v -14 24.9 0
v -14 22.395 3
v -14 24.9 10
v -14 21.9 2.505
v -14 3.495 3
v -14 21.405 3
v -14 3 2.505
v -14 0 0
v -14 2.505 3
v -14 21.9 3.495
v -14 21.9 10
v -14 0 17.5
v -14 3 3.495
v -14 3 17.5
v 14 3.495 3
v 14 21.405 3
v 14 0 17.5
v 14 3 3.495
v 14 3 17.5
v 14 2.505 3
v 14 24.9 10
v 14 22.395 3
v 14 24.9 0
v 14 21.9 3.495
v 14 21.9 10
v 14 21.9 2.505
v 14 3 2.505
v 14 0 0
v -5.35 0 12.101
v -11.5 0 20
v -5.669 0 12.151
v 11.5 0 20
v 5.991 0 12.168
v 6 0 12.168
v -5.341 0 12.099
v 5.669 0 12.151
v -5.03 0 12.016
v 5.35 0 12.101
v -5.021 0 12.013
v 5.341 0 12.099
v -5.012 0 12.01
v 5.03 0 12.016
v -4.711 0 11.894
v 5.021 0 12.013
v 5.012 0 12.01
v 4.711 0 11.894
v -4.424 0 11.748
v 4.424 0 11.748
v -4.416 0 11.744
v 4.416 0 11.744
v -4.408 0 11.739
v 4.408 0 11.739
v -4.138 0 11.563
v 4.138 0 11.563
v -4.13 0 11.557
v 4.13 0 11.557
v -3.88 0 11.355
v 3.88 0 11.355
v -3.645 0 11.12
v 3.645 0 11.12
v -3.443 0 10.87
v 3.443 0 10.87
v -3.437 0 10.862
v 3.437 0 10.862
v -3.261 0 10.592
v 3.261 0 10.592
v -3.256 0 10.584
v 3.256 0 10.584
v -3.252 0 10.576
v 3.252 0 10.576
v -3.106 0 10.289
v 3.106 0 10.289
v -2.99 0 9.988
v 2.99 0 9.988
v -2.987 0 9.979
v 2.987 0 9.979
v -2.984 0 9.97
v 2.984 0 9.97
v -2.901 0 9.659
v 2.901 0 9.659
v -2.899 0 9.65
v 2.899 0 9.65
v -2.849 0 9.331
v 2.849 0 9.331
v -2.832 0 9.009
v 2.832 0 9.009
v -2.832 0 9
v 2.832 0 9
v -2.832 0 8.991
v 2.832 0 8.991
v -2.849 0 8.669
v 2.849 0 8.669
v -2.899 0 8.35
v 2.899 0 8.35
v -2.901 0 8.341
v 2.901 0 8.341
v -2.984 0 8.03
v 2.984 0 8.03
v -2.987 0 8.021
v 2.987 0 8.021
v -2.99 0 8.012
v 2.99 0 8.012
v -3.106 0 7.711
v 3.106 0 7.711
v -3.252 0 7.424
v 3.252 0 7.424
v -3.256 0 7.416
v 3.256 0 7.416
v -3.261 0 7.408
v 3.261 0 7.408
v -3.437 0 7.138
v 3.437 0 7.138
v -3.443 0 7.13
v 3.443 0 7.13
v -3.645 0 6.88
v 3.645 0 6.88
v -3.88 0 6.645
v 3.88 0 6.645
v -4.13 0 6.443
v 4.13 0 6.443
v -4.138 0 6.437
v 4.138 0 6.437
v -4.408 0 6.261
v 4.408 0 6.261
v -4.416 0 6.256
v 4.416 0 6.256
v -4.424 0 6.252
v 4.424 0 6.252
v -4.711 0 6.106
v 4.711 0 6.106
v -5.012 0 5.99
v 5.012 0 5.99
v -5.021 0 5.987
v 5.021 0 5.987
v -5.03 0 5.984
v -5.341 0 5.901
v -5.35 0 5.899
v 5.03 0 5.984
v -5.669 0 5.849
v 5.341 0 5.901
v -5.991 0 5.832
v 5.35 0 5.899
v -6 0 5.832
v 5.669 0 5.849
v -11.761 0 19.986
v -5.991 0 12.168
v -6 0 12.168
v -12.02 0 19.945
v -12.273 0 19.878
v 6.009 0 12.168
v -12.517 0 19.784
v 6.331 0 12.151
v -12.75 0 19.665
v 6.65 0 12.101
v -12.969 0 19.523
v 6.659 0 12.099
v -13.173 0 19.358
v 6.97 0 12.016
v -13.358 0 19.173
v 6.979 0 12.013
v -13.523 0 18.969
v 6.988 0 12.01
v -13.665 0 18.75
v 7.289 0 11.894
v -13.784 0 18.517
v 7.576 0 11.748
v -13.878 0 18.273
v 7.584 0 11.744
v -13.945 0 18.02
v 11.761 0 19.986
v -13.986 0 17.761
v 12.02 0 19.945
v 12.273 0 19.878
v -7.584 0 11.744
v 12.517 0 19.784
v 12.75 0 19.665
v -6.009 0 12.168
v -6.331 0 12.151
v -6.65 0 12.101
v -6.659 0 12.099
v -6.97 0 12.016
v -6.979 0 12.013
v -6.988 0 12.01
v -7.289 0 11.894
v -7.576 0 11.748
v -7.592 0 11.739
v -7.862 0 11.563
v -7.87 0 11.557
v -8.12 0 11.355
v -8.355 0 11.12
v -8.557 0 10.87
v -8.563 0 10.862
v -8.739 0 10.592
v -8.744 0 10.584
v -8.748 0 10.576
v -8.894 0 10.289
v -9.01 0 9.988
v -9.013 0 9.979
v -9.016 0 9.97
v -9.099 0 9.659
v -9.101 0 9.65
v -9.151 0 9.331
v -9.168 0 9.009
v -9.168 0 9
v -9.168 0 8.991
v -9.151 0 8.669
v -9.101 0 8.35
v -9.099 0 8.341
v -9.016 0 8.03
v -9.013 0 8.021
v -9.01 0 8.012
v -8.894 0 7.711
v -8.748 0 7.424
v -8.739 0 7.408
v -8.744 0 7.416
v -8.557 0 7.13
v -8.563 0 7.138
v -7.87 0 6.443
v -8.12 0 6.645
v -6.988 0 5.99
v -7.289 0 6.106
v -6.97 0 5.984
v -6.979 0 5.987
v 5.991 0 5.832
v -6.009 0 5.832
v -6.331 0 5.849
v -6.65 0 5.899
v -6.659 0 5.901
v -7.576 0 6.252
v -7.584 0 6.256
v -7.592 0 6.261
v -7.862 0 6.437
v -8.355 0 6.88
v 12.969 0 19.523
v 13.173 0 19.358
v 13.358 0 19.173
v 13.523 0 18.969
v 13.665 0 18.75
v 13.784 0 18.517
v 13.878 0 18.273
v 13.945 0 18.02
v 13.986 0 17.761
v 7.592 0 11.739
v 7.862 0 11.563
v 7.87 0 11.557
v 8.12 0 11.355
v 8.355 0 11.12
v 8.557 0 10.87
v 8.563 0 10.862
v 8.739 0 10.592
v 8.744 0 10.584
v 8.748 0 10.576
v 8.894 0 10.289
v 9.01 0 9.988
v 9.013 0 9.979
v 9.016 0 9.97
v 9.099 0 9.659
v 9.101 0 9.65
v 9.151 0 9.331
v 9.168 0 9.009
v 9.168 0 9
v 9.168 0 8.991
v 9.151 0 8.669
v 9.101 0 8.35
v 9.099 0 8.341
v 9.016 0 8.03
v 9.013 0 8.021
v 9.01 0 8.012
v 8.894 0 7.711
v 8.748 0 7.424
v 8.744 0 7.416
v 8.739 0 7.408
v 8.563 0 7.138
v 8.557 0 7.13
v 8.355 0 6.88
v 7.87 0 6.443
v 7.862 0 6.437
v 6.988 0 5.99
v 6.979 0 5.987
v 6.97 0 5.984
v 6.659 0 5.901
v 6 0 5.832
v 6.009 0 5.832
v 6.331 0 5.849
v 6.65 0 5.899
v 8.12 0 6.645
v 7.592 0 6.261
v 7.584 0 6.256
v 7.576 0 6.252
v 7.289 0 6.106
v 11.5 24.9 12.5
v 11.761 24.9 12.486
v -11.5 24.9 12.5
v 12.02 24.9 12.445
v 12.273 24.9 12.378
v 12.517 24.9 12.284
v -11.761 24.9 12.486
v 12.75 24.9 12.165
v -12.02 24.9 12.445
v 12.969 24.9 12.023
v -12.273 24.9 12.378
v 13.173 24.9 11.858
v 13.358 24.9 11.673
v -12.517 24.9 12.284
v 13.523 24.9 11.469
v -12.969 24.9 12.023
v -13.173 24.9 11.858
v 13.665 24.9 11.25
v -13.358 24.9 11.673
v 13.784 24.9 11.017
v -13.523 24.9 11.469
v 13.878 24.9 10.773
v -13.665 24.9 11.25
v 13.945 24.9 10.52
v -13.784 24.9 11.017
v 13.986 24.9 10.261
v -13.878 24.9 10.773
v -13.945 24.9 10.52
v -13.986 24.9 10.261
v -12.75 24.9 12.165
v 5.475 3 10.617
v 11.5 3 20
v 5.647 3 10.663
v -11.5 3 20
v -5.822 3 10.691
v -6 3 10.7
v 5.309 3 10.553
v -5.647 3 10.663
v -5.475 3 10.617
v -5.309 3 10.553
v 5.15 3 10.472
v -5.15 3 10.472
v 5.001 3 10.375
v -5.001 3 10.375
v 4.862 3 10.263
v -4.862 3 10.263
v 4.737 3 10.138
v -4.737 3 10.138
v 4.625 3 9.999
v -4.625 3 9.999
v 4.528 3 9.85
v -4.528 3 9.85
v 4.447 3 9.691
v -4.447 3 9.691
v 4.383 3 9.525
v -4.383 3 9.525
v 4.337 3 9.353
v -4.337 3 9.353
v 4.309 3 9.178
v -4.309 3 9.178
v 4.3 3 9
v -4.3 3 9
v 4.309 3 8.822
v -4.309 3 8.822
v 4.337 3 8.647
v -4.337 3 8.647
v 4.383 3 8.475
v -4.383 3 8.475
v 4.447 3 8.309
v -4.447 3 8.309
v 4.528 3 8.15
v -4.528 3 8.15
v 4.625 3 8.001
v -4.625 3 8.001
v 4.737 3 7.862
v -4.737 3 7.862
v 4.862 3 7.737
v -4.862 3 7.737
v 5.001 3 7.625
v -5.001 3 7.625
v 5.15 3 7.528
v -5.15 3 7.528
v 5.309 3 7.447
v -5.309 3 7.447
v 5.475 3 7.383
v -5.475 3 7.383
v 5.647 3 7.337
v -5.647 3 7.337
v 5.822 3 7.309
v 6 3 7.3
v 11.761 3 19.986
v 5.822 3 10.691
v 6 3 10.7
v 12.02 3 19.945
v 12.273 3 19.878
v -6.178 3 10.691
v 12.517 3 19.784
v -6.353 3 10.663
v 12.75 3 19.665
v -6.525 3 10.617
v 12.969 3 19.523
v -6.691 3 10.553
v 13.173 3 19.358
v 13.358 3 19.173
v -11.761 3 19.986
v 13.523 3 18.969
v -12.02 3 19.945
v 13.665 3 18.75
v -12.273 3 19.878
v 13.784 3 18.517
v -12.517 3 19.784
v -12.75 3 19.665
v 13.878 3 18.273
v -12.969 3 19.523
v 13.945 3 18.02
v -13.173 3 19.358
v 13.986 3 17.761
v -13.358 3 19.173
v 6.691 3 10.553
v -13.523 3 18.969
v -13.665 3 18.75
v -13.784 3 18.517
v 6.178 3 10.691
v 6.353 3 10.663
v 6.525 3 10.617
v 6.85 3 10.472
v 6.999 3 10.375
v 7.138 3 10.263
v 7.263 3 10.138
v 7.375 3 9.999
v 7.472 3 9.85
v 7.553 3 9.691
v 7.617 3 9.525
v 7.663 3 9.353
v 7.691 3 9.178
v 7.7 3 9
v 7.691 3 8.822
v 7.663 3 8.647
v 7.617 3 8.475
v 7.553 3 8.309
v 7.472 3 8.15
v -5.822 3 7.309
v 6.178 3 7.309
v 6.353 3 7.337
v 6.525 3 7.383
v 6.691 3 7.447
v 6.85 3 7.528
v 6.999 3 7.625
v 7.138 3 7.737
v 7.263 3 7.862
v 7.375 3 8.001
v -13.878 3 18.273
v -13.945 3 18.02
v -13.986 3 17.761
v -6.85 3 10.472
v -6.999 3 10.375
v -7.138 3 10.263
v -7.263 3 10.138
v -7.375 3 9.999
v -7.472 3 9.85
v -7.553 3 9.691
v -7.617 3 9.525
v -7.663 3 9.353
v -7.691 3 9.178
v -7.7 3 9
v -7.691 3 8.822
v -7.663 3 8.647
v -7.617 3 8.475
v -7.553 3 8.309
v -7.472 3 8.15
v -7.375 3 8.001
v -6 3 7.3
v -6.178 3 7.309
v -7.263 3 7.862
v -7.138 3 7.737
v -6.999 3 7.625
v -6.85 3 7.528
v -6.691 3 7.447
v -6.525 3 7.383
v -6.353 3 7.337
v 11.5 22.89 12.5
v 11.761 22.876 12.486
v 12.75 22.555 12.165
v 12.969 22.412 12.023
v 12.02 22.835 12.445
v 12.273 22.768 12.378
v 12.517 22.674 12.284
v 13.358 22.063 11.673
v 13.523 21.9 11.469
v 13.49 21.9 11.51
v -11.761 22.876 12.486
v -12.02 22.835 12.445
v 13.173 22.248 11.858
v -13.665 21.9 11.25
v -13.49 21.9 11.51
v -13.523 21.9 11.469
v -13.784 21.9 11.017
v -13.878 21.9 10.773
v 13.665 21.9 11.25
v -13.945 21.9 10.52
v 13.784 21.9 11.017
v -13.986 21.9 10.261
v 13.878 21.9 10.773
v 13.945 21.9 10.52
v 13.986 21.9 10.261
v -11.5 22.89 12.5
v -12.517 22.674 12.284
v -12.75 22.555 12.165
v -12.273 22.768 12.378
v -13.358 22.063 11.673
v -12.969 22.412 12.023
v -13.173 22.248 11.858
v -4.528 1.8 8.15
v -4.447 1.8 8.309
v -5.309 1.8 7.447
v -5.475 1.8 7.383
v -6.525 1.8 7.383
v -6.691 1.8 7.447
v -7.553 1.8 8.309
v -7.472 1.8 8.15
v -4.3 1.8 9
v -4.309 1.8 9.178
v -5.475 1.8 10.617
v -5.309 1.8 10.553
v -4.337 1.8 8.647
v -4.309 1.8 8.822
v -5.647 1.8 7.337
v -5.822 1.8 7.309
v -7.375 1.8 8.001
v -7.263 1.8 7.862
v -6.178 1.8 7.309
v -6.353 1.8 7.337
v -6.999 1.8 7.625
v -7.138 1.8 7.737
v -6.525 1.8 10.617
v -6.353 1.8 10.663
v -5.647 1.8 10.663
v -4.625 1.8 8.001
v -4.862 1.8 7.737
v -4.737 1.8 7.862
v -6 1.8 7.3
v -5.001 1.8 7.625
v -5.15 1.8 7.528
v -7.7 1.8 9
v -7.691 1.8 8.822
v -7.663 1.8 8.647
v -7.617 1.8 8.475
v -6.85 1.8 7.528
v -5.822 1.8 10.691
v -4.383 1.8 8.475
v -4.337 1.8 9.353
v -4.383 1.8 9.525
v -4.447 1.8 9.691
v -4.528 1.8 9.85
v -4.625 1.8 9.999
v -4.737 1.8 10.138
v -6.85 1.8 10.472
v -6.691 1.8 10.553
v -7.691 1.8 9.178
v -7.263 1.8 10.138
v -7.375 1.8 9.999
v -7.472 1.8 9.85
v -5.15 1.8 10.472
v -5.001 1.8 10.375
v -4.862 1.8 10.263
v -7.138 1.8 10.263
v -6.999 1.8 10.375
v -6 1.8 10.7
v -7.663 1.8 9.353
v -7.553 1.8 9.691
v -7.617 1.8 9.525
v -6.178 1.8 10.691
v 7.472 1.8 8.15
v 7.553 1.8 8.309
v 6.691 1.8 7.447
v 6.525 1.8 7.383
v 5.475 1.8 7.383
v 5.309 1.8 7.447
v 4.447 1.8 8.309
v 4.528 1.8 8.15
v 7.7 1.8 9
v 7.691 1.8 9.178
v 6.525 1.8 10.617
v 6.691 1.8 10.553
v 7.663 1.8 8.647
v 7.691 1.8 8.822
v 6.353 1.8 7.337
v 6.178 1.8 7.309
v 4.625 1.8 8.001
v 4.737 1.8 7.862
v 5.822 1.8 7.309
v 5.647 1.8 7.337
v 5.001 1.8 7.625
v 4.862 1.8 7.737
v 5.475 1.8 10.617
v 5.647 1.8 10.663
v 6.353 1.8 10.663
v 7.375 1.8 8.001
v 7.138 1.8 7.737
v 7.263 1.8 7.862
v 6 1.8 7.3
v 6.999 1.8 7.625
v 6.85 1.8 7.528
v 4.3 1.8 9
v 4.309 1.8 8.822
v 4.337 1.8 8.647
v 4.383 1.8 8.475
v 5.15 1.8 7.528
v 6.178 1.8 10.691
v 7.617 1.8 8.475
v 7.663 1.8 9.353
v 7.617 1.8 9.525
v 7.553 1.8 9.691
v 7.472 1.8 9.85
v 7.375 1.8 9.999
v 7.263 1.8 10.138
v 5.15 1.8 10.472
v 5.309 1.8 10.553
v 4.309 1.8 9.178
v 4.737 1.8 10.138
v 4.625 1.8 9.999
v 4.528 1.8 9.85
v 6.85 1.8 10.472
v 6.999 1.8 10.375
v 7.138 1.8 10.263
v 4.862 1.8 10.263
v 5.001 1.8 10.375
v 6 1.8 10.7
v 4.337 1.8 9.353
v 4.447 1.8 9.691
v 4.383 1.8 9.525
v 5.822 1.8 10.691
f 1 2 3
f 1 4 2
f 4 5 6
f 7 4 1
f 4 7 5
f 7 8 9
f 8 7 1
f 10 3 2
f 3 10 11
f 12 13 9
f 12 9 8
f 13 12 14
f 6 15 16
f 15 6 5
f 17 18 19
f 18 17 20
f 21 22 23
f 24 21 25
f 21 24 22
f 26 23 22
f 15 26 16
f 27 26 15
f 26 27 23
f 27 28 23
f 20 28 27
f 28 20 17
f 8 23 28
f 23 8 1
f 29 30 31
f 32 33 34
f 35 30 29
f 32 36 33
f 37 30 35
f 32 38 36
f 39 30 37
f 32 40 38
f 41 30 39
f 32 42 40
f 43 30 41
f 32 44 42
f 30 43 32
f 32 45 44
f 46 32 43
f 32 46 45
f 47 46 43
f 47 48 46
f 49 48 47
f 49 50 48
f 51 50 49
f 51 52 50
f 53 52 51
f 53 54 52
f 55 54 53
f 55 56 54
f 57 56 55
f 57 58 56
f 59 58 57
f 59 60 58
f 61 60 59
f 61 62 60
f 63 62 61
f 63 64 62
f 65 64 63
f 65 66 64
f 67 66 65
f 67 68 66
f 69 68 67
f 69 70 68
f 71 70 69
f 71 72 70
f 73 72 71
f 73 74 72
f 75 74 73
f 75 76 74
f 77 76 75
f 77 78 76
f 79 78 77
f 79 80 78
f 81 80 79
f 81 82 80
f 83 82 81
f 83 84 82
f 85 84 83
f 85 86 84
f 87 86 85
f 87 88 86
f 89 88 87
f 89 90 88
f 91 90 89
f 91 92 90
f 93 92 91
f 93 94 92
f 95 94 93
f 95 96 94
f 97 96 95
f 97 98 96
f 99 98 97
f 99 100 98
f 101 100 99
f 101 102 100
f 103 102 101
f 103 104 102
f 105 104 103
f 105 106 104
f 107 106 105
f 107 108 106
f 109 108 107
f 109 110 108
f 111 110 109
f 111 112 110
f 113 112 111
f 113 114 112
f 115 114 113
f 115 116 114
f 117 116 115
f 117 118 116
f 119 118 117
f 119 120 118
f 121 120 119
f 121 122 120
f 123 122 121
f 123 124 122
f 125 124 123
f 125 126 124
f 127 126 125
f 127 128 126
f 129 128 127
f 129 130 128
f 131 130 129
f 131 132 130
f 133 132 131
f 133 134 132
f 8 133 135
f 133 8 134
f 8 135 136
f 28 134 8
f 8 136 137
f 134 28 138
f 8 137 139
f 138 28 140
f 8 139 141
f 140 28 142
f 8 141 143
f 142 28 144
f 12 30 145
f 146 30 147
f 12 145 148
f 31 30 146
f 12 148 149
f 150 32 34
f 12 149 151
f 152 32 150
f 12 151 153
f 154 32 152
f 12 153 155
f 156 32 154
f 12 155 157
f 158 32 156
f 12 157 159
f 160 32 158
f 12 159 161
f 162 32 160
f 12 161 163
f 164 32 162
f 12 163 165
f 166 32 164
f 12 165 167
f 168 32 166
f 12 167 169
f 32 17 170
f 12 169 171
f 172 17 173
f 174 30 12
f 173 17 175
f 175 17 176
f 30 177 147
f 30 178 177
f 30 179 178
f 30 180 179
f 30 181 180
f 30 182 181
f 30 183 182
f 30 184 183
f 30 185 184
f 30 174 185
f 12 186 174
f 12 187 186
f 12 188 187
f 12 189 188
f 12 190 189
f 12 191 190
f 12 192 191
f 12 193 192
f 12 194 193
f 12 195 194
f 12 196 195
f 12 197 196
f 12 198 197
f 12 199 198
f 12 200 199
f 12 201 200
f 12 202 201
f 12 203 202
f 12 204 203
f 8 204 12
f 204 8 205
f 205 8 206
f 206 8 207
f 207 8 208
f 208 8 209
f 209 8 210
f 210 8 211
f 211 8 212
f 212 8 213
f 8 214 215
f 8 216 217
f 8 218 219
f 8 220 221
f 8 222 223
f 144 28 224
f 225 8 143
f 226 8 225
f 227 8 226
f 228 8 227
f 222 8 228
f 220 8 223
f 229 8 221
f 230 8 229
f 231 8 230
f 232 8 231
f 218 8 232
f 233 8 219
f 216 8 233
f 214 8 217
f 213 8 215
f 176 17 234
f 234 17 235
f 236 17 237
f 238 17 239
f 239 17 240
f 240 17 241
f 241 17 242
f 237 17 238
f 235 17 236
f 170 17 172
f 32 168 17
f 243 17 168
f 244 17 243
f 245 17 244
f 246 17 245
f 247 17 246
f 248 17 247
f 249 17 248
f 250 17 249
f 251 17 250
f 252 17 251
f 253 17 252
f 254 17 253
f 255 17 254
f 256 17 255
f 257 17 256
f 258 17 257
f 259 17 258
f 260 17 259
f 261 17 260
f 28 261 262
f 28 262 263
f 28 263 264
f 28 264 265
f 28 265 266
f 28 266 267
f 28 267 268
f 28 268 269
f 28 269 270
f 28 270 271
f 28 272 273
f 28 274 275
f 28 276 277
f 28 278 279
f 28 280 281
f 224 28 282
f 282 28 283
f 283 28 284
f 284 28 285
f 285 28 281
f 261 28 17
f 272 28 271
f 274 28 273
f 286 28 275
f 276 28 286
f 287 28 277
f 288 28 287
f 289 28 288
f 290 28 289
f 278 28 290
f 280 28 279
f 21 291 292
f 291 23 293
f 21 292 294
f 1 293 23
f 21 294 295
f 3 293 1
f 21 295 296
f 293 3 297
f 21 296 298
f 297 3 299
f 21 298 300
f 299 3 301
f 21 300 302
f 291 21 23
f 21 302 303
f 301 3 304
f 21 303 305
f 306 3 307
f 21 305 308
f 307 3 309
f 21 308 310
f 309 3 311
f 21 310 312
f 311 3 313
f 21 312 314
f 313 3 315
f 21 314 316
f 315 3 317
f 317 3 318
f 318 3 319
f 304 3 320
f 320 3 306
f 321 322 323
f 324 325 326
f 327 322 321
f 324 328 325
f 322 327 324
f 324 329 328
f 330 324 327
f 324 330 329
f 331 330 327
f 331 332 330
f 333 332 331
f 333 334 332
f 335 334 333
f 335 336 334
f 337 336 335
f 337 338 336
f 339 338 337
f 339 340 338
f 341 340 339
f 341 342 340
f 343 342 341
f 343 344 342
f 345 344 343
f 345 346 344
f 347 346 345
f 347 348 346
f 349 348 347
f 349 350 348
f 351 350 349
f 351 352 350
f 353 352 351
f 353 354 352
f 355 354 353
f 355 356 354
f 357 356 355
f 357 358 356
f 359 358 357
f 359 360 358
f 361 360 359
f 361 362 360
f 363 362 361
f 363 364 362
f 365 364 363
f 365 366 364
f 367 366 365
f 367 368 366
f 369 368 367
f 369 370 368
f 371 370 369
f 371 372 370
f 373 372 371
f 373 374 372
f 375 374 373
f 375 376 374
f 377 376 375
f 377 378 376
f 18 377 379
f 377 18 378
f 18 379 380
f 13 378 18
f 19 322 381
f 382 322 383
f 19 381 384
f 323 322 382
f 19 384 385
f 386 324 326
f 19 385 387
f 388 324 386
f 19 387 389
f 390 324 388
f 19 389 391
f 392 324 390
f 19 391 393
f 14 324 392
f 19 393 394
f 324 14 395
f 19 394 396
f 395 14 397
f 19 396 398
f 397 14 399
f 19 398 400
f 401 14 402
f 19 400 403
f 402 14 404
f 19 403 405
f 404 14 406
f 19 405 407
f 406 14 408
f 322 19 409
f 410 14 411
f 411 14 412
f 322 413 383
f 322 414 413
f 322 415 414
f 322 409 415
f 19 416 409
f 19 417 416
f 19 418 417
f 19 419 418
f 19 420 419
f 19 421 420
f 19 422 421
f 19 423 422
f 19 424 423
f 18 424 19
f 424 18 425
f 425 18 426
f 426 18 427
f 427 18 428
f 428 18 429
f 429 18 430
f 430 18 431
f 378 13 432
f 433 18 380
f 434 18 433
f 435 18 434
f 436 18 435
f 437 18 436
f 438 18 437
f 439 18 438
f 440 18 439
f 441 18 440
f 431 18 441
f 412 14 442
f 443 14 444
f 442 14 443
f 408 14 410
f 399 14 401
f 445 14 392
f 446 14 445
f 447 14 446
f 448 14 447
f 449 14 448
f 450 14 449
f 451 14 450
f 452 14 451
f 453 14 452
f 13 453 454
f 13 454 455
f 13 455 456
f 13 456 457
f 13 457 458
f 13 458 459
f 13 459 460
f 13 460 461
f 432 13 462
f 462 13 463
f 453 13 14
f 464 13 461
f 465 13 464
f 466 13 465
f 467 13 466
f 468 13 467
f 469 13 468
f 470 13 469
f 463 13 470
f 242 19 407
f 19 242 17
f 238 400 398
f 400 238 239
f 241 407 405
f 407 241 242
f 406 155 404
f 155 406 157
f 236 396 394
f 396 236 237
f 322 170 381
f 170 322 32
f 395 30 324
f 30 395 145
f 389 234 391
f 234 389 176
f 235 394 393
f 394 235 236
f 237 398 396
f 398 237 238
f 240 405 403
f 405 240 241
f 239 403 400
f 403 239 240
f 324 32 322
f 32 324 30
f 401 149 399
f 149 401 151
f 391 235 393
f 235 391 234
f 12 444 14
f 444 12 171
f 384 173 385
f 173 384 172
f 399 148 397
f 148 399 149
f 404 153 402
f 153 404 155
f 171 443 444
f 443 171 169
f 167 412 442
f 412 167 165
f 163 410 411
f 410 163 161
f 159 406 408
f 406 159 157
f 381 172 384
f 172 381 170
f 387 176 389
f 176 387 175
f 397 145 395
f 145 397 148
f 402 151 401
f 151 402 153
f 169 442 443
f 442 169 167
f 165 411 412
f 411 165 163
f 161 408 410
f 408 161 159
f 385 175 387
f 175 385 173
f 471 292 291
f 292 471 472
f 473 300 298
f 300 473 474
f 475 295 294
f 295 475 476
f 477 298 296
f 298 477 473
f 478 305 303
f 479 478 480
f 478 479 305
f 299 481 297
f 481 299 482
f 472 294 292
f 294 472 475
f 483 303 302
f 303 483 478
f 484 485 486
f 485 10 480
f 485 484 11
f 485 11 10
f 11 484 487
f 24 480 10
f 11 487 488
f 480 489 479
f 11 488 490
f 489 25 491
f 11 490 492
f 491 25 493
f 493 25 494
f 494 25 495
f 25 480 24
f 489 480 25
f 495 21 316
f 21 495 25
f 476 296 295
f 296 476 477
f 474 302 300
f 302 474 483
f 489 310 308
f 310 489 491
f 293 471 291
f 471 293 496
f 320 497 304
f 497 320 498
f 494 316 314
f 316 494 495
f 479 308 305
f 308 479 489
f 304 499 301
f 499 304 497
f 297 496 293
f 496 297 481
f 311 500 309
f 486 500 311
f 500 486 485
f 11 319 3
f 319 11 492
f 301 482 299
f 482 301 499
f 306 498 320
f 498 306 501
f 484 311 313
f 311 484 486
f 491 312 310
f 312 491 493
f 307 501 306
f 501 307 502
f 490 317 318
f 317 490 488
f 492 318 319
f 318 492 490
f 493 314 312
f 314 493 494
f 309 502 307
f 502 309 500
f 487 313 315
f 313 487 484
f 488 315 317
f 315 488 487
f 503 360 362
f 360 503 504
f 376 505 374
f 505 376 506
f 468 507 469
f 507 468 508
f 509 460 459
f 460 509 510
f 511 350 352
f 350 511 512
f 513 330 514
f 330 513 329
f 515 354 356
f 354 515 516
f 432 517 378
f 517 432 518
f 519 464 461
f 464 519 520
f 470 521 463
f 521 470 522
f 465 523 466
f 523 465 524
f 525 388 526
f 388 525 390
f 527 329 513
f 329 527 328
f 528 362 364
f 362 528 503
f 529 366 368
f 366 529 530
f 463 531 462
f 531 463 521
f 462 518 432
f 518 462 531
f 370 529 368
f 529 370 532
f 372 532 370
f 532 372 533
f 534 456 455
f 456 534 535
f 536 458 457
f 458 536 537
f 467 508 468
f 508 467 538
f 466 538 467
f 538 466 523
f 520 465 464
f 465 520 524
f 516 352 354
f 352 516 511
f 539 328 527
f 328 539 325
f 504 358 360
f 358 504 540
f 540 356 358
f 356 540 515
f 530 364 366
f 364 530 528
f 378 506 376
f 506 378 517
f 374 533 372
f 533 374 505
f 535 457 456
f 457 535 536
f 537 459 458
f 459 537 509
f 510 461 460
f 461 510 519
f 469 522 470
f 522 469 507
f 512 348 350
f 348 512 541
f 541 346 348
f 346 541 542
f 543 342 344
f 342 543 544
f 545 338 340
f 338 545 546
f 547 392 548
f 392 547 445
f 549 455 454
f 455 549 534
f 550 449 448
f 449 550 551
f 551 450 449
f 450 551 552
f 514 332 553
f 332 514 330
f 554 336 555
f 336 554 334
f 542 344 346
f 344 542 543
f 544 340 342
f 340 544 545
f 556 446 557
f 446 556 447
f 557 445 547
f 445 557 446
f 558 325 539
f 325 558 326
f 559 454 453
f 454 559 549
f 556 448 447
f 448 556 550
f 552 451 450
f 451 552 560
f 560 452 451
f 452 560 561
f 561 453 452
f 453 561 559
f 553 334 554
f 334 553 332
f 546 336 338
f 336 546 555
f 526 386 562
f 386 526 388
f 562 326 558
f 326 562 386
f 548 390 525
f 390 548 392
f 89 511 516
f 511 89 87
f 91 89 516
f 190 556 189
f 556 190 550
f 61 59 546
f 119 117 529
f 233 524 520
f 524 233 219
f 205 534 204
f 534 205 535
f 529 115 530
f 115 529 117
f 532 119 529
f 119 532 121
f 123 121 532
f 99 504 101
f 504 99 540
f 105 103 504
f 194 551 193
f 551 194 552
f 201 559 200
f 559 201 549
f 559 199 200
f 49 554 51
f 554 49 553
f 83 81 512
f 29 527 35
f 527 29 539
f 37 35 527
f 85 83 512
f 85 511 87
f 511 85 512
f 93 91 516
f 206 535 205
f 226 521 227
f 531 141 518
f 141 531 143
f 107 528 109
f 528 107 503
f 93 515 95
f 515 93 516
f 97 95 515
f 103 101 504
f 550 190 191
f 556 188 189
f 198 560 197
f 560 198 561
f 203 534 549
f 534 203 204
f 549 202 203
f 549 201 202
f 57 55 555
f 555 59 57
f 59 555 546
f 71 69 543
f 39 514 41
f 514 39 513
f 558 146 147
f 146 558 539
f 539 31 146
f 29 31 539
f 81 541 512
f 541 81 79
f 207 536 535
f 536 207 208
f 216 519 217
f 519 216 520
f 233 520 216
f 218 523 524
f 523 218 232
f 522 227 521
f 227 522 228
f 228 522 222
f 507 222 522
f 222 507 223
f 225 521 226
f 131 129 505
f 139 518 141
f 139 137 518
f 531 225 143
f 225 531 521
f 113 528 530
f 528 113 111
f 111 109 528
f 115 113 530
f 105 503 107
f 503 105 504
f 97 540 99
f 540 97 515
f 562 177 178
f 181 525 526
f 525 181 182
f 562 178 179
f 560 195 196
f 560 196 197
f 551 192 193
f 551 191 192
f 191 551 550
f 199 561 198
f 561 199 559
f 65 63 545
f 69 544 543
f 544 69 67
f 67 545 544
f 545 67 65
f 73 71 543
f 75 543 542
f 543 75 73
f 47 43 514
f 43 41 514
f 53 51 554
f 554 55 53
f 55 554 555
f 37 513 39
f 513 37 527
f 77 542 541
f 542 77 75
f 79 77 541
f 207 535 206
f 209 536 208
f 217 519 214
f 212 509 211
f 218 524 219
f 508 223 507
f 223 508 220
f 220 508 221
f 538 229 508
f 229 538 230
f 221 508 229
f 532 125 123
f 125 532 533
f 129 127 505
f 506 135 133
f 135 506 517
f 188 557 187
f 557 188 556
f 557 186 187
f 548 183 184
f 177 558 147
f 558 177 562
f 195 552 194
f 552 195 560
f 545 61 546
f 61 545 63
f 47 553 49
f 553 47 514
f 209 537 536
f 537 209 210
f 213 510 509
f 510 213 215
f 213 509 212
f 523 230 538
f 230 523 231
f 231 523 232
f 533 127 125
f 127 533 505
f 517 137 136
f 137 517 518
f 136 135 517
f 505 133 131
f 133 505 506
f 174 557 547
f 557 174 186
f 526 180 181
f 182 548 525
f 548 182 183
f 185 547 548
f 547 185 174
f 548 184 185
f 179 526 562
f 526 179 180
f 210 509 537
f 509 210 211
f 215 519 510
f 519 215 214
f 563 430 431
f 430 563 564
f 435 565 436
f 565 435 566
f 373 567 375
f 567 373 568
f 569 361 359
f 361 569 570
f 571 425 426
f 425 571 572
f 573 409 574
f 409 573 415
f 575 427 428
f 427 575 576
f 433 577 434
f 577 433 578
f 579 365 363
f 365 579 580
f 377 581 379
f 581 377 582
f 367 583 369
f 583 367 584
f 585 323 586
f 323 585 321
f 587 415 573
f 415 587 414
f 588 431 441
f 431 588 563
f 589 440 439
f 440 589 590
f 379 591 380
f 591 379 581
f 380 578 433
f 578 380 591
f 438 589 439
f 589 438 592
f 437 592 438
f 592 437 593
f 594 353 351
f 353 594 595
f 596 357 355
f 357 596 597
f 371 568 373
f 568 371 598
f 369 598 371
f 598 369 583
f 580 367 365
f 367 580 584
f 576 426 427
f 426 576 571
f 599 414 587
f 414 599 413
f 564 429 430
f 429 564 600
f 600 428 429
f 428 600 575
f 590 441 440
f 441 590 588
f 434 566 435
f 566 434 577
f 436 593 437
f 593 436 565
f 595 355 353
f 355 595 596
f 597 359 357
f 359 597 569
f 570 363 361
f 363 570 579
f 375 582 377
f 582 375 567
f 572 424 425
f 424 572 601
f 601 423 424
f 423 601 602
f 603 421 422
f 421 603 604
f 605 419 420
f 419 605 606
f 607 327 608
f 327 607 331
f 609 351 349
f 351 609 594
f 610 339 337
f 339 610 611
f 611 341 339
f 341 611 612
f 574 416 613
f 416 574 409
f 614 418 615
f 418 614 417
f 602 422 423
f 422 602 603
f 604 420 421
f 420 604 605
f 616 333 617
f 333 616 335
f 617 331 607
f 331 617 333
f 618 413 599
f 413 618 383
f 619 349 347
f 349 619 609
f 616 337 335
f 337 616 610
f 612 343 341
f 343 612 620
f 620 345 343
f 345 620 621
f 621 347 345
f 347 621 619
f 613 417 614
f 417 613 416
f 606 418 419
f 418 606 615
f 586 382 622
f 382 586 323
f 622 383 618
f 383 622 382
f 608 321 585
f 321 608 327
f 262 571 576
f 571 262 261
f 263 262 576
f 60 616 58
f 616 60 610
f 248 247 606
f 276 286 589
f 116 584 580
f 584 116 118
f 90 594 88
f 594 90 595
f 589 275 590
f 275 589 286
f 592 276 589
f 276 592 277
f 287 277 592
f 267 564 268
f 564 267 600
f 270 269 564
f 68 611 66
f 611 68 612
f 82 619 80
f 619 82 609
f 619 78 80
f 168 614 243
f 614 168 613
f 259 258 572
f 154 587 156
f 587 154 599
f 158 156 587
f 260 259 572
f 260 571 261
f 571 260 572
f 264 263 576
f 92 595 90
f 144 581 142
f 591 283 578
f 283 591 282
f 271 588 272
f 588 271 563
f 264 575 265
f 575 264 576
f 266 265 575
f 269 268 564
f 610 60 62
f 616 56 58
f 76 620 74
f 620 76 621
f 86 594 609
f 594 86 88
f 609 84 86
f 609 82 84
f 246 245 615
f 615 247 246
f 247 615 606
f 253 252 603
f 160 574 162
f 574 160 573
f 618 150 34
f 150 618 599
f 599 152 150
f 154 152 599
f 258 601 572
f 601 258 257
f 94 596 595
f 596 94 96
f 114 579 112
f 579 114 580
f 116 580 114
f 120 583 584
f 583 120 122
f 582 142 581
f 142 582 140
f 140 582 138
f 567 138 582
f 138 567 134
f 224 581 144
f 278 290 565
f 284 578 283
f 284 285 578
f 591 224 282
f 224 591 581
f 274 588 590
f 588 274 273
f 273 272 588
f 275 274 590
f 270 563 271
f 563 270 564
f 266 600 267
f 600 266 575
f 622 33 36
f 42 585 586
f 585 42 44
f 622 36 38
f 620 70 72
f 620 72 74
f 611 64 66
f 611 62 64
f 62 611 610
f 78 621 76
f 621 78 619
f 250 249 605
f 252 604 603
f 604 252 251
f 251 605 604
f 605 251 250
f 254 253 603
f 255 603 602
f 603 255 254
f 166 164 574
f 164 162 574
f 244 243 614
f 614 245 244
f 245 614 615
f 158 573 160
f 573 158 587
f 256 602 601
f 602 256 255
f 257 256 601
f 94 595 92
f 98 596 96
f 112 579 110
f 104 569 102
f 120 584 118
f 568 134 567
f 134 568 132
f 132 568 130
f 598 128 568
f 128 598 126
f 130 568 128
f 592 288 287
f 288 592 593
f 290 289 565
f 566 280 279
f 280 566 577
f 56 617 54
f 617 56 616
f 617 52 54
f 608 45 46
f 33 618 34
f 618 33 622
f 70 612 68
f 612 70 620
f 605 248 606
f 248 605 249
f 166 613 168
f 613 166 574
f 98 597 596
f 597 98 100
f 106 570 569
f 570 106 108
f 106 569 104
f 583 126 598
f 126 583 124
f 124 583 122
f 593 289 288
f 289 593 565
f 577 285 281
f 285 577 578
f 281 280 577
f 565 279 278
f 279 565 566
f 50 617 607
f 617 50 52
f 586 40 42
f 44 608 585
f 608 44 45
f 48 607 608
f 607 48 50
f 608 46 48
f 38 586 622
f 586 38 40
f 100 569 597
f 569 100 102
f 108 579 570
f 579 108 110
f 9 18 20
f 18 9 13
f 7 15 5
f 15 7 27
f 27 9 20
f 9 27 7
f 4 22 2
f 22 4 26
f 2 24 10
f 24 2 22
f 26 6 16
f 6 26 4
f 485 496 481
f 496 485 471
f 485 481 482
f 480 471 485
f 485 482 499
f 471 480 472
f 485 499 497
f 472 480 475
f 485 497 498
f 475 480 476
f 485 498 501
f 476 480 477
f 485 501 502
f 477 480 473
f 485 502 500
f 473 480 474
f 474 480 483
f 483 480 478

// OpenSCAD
// ==============================================================================
// 2-Panel Digit Seam U-Profile Joining & Padel Mesh Hook Bracket
// For Modular 7-Segment Display / Clock / Padel Scoreboard
// Designed for Bambu Lab / Prusa / FDM 3D Printing (100% Support-Free)
// ==============================================================================
//
// Purpose & Mechanical Problem Solved:
// Standard modular 7-segment panels ([Digit 1] + [Digit 2]) are fastened across
// their seam on the rear backplate plane (Z = -5.5mm).
//
// Because each panel has an 18.5 mm depth and no mechanical connection on the front,
// the joint bends or flexes when handled or lifted.
//
// This Dual-Function Bracket System provides:
// 1. Anti-Bending Front-to-Back U-Channel Clamping:
//    - Rear Flange (17.0 mm) + Front Lip (9.5 mm) clamps both faces simultaneously,
//      eliminating joint bending and flexing.
//    - Spans across adjacent panels (28.0 mm total width, 14 mm on each panel).
//    - 2x M3 Countersunk Screw Holes on 12.0 mm pitch (X = -6.0 mm and X = +6.0 mm).
//    - Straight 90° square top corners for clean, flush rim alignment.
//
// 2. Extended Padel Court Mesh Protective Mounting Hook (Front-Facing):
//    - Positions the scoreboard BEHIND the padel wire mesh fence.
//    - High-strength retention hook extends FORWARD in front of the display face,
//      dropping securely over the horizontal 4mm-5mm steel fence wire.
//    - Padel balls strike the steel wire mesh, completely protecting digits & electronics!
//    - Deep 16 mm retention lip prevents the scoreboard from jumping off on ball impact.
//    - 45° flared entry mouth for effortless drop-on installation.
//    - Designed to print flat on its side for 100% continuous tensile strength!
// ==============================================================================

/* [Configuration & Part Selection] */
part = 1; // [1:"single_standard - 1 Clean U-Bracket (Top or Bottom)", 2:"pair_standard - Pair of Clean U-Brackets (Top + Bottom)", 3:"single_padel_hook - 1 Extended Padel Mesh Hook U-Bracket (Top Rim)", 4:"pair_padel_hook - Pair of Padel Hook U-Brackets (for Digits 1-2 and Digits 3-4)", 5:"tournament_set4 - Full 4-Piece Set: 2x Top Padel Hooks + 2x Bottom Clean U-Brackets", 6:"preview_padel_mesh - 3D Preview: Scoreboard Hanging on Padel Fence with Padel Ball", 7:"preview_standard - 3D Preview: Clamped 2-Digit Assembly", 8:"cutaway_hook - Cross-Section Cutaway of Hook & Panel Seating"]

/* [Fastening & Hardware Options] */
screw_head_style = "countersunk"; // ["countersunk": Flat M3 DIN 7991 (compatible with thumbscrews), "counterbore": Cylindrical socket head M3 DIN 912 / Button head ISO 7380]

/* [Dimensions - Panel Interface] */
panel_thick     = 18.5; // Panel depth (13.0mm frontplate + 5.5mm backplate)
slot_clearance  = 0.40; // 18.9 mm internal slot width
hole_pitch      = 12.0; // Center-to-center pitch between corner screws across seam (6mm + 6mm)
screw_rim_inset = 6.0;  // Inset of M3 screws from outer rim

/* [Dimensions - U-Profile Bracket] */
bracket_w       = 28.0; // Total width across seam (14mm on each panel, matches rear_joining_bracket)
wall_thick      = 3.0;  // Structural wall thickness of flanges and web
rear_flange_len = 17.0; // Rear flange height past rim (11mm past M3 hole center)
front_lip_len   = 9.5;  // Front lip depth past rim (stays >5mm clear of 15mm diffusers)
fillet_r        = 2.5;  // Outer corner radius for lower flange tips

/* [Dimensions - Padel Wire Mesh Hook] */
wire_d          = 4.2;  // Standard padel fence wire diameter (supports 3.5 to 5.0 mm)
throat_d        = 5.6;  // Hook throat diameter for smooth drop-on fit
hook_arm_t      = 4.2;  // Heavy-duty structural hook arm thickness
front_clearance = 1.2;  // Clearance between front flange and wire
hook_lip_depth  = 16.0; // Downward retention lip depth in front of wire (prevents jumping on impact)

/* [Hardware Dimensions - M3 Clearance] */
screw_hole_d    = 3.4;  // M3 pass-through clearance diameter
cs_outer_d      = 6.5;  // M3 DIN 7991 countersink diameter
cs_depth        = 1.8;  // Countersink cone depth
cb_outer_d      = 6.2;  // Counterbore socket recess diameter
cb_depth        = 2.0;  // Counterbore recess depth

/* [Print Resolution] */
$fn = 60;

// ==============================================================================
// DERIVED GEOMETRY CALCULATIONS
// ==============================================================================
slot_w        = panel_thick + slot_clearance;     // 18.9 mm inner opening
total_y       = wall_thick + slot_w + wall_thick; // 24.9 mm total footprint width
x_min         = -bracket_w / 2;                   // -14.0 mm
x_max         =  bracket_w / 2;                   // +14.0 mm

h_rear_total  = wall_thick + rear_flange_len;     // 20.0 mm
h_front_total = wall_thick + front_lip_len;       // 12.5 mm

// 2 M3 screw X positions:
screw_x_positions = [-hole_pitch / 2, hole_pitch / 2]; // [-6.0, +6.0 mm]

// Wire center in local Y-Z profile coordinates:
// Z = 0 is backplate, Z = slot_w is frontplate, Z = slot_w + wall_thick is front flange outer face
wire_center_z = slot_w + wall_thick + front_clearance + wire_d / 2; // ~25.4 mm
wire_center_y = -wall_thick; // Level with web outer face (~ -3.0 mm)

// ==============================================================================
// 1. STANDARD CLEAN U-PROFILE BRACKET
// ==============================================================================

module flange_profile_2d(w, h, r_tip) {
    hull() {
        translate([-w/2, 0]) square([w, 0.1]);
        translate([-w/2 + r_tip, h - r_tip]) circle(r = r_tip);
        translate([ w/2 - r_tip, h - r_tip]) circle(r = r_tip);
    }
}

module panel_seam_u_bracket_printable() {
    difference() {
        // Solid Body
        union() {
            // Web (flat on bed)
            translate([-bracket_w/2, 0, 0])
                cube([bracket_w, total_y, wall_thick]);
                
            // Rear Flange Wall
            translate([0, wall_thick, 0])
                rotate([90, 0, 0])
                    linear_extrude(height = wall_thick)
                        flange_profile_2d(bracket_w, h_rear_total, fillet_r);
            
            // Front Flange Wall
            translate([0, total_y, 0])
                rotate([90, 0, 0])
                    linear_extrude(height = wall_thick)
                        flange_profile_2d(bracket_w, h_front_total, fillet_r);
        }
        
        // Chamfers & lead-ins
        translate([0, wall_thick, wall_thick])
            rotate([0, 90, 0]) rotate([0, 0, 45])
                cube([0.7, 0.7, bracket_w + 2.0], center = true);
        translate([0, wall_thick + slot_w, wall_thick])
            rotate([0, 90, 0]) rotate([0, 0, 45])
                cube([0.7, 0.7, bracket_w + 2.0], center = true);

        // Front lip lead-in chamfer
        translate([0, wall_thick + slot_w, h_front_total])
            rotate([0, 90, 0]) rotate([0, 0, 45])
                cube([1.4, 1.4, bracket_w + 2.0], center = true);

        // 2x M3 Screw Holes through Rear Flange
        for (x = screw_x_positions) {
            translate([x, -0.1, wall_thick + screw_rim_inset]) {
                rotate([-90, 0, 0]) {
                    cylinder(h = wall_thick + 0.2, d = screw_hole_d);
                    if (screw_head_style == "countersunk") {
                        cylinder(h = cs_depth + 0.1, d1 = cs_outer_d, d2 = screw_hole_d);
                    } else if (screw_head_style == "counterbore") {
                        cylinder(h = cb_depth + 0.1, d = cb_outer_d);
                    }
                }
            }
        }
    }
}

// ==============================================================================
// 2. EXTENDED PADEL COURT MESH HOOK U-BRACKET
// ==============================================================================
// Side Profile in (Z, Y) space:
// - Z is depth through the panel (0 = rear backplate, slot_w = frontplate)
// - Y is height: 0 is panel rim, -wall_thick is web outer face, +Y extends down panel
module padel_hook_u_profile_2d() {
    hook_top_y   = wire_center_y - throat_d/2 - hook_arm_t; // Highest point of hook arch (~ -10.0 mm)
    hook_front_z = wire_center_z + throat_d/2 + hook_arm_t; // Frontmost edge of hook (~ 32.4 mm)
    lip_bottom_y = hook_top_y + hook_lip_depth + throat_d/2 + hook_arm_t; // Bottom tip of lip (~ 10.2 mm)
    
    difference() {
        // Outer continuous solid profile envelope
        polygon(points = [
            // Rear Flange
            [-wall_thick, rear_flange_len],
            [0, rear_flange_len],
            [0, 0],                         // Inner corner at rim
            
            // Slot Ceiling (inner rim)
            [slot_w, 0],
            
            // Front Flange (retaining lip)
            [slot_w, front_lip_len],
            [slot_w + wall_thick, front_lip_len],
            
            // Bridge from front flange out to hook front
            [wire_center_z - throat_d/2, 0],
            
            // Hook front downward retention lip
            [hook_front_z, lip_bottom_y],
            [hook_front_z, hook_top_y],     // Top-front corner
            [-wall_thick, hook_top_y],      // Top-rear corner
            [-wall_thick, rear_flange_len]  // Back down rear flange
        ]);
        
        // Subtract: Wire seating circular throat
        translate([wire_center_z, wire_center_y])
            circle(d = throat_d);
            
        // Subtract: Entry slot angled downwards (+Y) for smooth wire slide-in
        translate([wire_center_z - throat_d/2, wire_center_y])
            square([throat_d, lip_bottom_y - wire_center_y + 1.0]);
            
        // Subtract: 45° Flared lead-in mouth at bottom of retention lip
        polygon(points = [
            [wire_center_z - throat_d/2 - 2.5, lip_bottom_y + 1.0],
            [hook_front_z + 1.0, lip_bottom_y + 1.0],
            [hook_front_z + 1.0, lip_bottom_y - 3.5],
            [wire_center_z - throat_d/2, lip_bottom_y - 6.0]
        ]);
        
        // Subtract: Slot base corner relief chamfers
        translate([0, 0])
            rotate([0, 0, 45]) square([0.7, 0.7], center = true);
        translate([slot_w, 0])
            rotate([0, 0, 45]) square([0.7, 0.7], center = true);
            
        // Subtract: Front lip inner entry chamfer
        translate([slot_w, front_lip_len])
            rotate([0, 0, 45]) square([1.4, 1.4], center = true);
    }
}

module panel_seam_u_hook_bracket_solid() {
    // Extrude the 2D hook profile along X from -bracket_w/2 to +bracket_w/2
    translate([bracket_w/2, 0, 0])
        rotate([0, -90, 0])
            linear_extrude(height = bracket_w)
                padel_hook_u_profile_2d();
}

module panel_seam_u_hook_bracket() {
    difference() {
        panel_seam_u_hook_bracket_solid();
        
        // 2x M3 Countersunk Holes through Rear Flange
        for (x = screw_x_positions) {
            translate([x, screw_rim_inset, -wall_thick - 0.1]) {
                cylinder(h = wall_thick + 0.2, d = screw_hole_d);
                if (screw_head_style == "countersunk") {
                    cylinder(h = cs_depth + 0.1, d1 = cs_outer_d, d2 = screw_hole_d);
                } else if (screw_head_style == "counterbore") {
                    cylinder(h = cb_depth + 0.1, d = cb_outer_d);
                }
            }
        }
        
        // Round bottom corners of rear flange
        translate([x_min - 0.1, rear_flange_len - fillet_r, -wall_thick - 0.1])
            difference() {
                cube([fillet_r + 0.1, fillet_r + 0.1, wall_thick + 0.2]);
                translate([fillet_r + 0.1, 0, -0.1])
                    cylinder(r = fillet_r, h = wall_thick + 0.4);
            }
        translate([x_max - fillet_r, rear_flange_len - fillet_r, -wall_thick - 0.1])
            difference() {
                cube([fillet_r + 0.1, fillet_r + 0.1, wall_thick + 0.2]);
                translate([0, 0, -0.1])
                    cylinder(r = fillet_r, h = wall_thick + 0.4);
            }
    }
}

// Print-Ready Orientation: Lying flat on its side (Z_bed is X-axis)
// This aligns 100% of layer lines along the tensile hook load path for maximum strength!
module panel_seam_u_hook_bracket_printable() {
    translate([0, 0, bracket_w/2])
        rotate([0, 90, 0])
            panel_seam_u_hook_bracket();
}

// ==============================================================================
// 3. 3D PREVIEW & SIMULATION CONTEXT
// ==============================================================================

module padel_mesh_wire_grid(w = 360, h = 300) {
    color("#94a3b8", 0.9) { // Galvanized steel wire
        // Horizontal wires (along X) - guarantees a wire at y = 0
        for (iy = [-3 : 3]) {
            translate([0, iy * 50.0, 0])
                rotate([0, 90, 0])
                    cylinder(h = w, d = wire_d, center = true, $fn = 20);
        }
        // Vertical wires (along Y) - offset by 25mm so seam at X=0 sits cleanly in mesh opening
        for (ix = [-3 : 3]) {
            translate([ix * 50.0 + 25.0, 0, 0])
                rotate([90, 0, 0])
                    cylinder(h = h, d = wire_d, center = true, $fn = 20);
        }
    }
}

module simulated_digit_panel(panel_label = "1") {
    pw = 138.4;
    ph = 230.4;
    color("#1e293b", 0.8) {
        difference() {
            translate([-pw/2, -ph/2, -5.5])
                cube([pw, ph, 18.5]);
            translate([-pw/2 + 10, -ph/2 + 15, 0.5])
                cube([pw - 20, ph - 30, 13.0]);
        }
    }
    color("#f8fafc", 0.6)
        translate([0, 0, 12.4])
            linear_extrude(0.6)
                text(panel_label, size = 110, font = "Liberation Sans:style=Bold", halign = "center", valign = "center");
}

module preview_padel_court_mounting(cutaway = false) {
    pw = 138.4;
    ph = 230.4;
    x_d1 = -pw / 2;
    x_d2 =  pw / 2;
    
    // Wire center in scoreboard coordinates:
    // Aligns dead center in the hook throat at Y = ph/2 + wall_thick = 118.2 mm
    wire_y_sb = ph/2 + wall_thick;
    // Front face is at Z = +13.0 mm. Wire sits at Z = 13.0 + slot_clearance/2 + wall_thick + front_clearance + wire_d/2 = 19.7 mm
    wire_z_sb = wire_center_z - 5.5 - slot_clearance/2; // 19.7 mm
    
    difference() {
        union() {
            // 1. Two Digit Panels
            translate([x_d1, 0, 0]) simulated_digit_panel("1");
            translate([x_d2, 0, 0]) simulated_digit_panel("2");
            
            // 2. Top Extended Padel Mesh Hook U-Bracket
            // Mounts across seam (X = 0) at top rim (Y = +ph/2)
            // Maps +Y_profile (downward into panel) to -Y_sb
            multmatrix([
                [1,  0, 0, 0],
                [0, -1, 0, ph/2],
                [0,  0, 1, -5.5 - slot_clearance/2],
                [0,  0, 0, 1]
            ])
            color("#e11d48") // Anodized Red Accent
                panel_seam_u_hook_bracket();
                    
            // 3. Bottom Clean U-Bracket (keeps bottom seam rigid)
            multmatrix([
                [1, 0, 0, 0],
                [0, 0, 1, -ph/2 - wall_thick],
                [0, 1, 0, -5.5 - slot_clearance/2 - wall_thick],
                [0, 0, 0, 1]
            ])
            color("#e11d48")
                panel_seam_u_bracket_printable();
            
            // 4. Padel Court Steel Wire Mesh (Scoreboard is safely BEHIND the fence)
            if (cutaway) {
                translate([0, wire_y_sb, wire_z_sb])
                    rotate([0, 90, 0])
                        color("#94a3b8")
                            cylinder(h = 80, d = wire_d, center = true, $fn = 30);
            } else {
                translate([0, wire_y_sb, wire_z_sb])
                    padel_mesh_wire_grid(w = 360, h = 280);
                    
                // 5. Incoming Padel Ball (Optic Yellow, striking the mesh from court side)
                translate([95.0, wire_y_sb - 20.0, wire_z_sb + 42.0])
                    color("#eab308")
                        sphere(d = 66.0, $fn = 30);
            }
        }
        
        // Optional Cutaway along X (removes +X half to inspect wire & hook seating)
        if (cutaway) {
            translate([0, -200, -100])
                cube([300, 400, 200]);
        }
    }
}

// ==============================================================================
// 4. MAIN SELECTOR
// ==============================================================================

if (part == 1) {
    // Single standard clean U-bracket (Print-ready flat on web, zero supports)
    panel_seam_u_bracket_printable();
} else if (part == 2) {
    // Pair of standard clean U-brackets on print bed (Top + Bottom)
    spacing_y = total_y + 8.0;
    translate([0, -spacing_y/2, 0]) panel_seam_u_bracket_printable();
    translate([0,  spacing_y/2, 0]) panel_seam_u_bracket_printable();
} else if (part == 3) {
    // Single Extended Padel Mesh Hook U-Bracket (Print-ready on side, 100% tensile strength)
    panel_seam_u_hook_bracket_printable();
} else if (part == 4) {
    // Pair of Padel Mesh Hook U-Brackets (for Digits 1-2 and Digits 3-4 top rims)
    spacing_x = bracket_w + 10.0;
    translate([-spacing_x/2, 0, 0]) panel_seam_u_hook_bracket_printable();
    translate([ spacing_x/2, 0, 0]) panel_seam_u_hook_bracket_printable();
} else if (part == 5) {
    // Full Tournament Set of 4 (2x Top Padel Hooks + 2x Bottom Clean Brackets)
    translate([-bracket_w - 6.0, 0, 0]) panel_seam_u_hook_bracket_printable();
    translate([0, 0, 0]) panel_seam_u_hook_bracket_printable();
    translate([bracket_w + 12.0, -total_y/2 - 4.0, 0]) panel_seam_u_bracket_printable();
    translate([bracket_w + 12.0,  total_y/2 + 4.0, 0]) panel_seam_u_bracket_printable();
} else if (part == 6) {
    // 3D Preview: Scoreboard Hanging on Padel Fence behind wire mesh
    preview_padel_court_mounting(cutaway = false);
} else if (part == 7) {
    // Standard 2-digit preview
    preview_padel_court_mounting(cutaway = false);
} else if (part == 8) {
    // Cross-Section Cutaway of Hook & Wire Seating
    preview_padel_court_mounting(cutaway = true);
}
